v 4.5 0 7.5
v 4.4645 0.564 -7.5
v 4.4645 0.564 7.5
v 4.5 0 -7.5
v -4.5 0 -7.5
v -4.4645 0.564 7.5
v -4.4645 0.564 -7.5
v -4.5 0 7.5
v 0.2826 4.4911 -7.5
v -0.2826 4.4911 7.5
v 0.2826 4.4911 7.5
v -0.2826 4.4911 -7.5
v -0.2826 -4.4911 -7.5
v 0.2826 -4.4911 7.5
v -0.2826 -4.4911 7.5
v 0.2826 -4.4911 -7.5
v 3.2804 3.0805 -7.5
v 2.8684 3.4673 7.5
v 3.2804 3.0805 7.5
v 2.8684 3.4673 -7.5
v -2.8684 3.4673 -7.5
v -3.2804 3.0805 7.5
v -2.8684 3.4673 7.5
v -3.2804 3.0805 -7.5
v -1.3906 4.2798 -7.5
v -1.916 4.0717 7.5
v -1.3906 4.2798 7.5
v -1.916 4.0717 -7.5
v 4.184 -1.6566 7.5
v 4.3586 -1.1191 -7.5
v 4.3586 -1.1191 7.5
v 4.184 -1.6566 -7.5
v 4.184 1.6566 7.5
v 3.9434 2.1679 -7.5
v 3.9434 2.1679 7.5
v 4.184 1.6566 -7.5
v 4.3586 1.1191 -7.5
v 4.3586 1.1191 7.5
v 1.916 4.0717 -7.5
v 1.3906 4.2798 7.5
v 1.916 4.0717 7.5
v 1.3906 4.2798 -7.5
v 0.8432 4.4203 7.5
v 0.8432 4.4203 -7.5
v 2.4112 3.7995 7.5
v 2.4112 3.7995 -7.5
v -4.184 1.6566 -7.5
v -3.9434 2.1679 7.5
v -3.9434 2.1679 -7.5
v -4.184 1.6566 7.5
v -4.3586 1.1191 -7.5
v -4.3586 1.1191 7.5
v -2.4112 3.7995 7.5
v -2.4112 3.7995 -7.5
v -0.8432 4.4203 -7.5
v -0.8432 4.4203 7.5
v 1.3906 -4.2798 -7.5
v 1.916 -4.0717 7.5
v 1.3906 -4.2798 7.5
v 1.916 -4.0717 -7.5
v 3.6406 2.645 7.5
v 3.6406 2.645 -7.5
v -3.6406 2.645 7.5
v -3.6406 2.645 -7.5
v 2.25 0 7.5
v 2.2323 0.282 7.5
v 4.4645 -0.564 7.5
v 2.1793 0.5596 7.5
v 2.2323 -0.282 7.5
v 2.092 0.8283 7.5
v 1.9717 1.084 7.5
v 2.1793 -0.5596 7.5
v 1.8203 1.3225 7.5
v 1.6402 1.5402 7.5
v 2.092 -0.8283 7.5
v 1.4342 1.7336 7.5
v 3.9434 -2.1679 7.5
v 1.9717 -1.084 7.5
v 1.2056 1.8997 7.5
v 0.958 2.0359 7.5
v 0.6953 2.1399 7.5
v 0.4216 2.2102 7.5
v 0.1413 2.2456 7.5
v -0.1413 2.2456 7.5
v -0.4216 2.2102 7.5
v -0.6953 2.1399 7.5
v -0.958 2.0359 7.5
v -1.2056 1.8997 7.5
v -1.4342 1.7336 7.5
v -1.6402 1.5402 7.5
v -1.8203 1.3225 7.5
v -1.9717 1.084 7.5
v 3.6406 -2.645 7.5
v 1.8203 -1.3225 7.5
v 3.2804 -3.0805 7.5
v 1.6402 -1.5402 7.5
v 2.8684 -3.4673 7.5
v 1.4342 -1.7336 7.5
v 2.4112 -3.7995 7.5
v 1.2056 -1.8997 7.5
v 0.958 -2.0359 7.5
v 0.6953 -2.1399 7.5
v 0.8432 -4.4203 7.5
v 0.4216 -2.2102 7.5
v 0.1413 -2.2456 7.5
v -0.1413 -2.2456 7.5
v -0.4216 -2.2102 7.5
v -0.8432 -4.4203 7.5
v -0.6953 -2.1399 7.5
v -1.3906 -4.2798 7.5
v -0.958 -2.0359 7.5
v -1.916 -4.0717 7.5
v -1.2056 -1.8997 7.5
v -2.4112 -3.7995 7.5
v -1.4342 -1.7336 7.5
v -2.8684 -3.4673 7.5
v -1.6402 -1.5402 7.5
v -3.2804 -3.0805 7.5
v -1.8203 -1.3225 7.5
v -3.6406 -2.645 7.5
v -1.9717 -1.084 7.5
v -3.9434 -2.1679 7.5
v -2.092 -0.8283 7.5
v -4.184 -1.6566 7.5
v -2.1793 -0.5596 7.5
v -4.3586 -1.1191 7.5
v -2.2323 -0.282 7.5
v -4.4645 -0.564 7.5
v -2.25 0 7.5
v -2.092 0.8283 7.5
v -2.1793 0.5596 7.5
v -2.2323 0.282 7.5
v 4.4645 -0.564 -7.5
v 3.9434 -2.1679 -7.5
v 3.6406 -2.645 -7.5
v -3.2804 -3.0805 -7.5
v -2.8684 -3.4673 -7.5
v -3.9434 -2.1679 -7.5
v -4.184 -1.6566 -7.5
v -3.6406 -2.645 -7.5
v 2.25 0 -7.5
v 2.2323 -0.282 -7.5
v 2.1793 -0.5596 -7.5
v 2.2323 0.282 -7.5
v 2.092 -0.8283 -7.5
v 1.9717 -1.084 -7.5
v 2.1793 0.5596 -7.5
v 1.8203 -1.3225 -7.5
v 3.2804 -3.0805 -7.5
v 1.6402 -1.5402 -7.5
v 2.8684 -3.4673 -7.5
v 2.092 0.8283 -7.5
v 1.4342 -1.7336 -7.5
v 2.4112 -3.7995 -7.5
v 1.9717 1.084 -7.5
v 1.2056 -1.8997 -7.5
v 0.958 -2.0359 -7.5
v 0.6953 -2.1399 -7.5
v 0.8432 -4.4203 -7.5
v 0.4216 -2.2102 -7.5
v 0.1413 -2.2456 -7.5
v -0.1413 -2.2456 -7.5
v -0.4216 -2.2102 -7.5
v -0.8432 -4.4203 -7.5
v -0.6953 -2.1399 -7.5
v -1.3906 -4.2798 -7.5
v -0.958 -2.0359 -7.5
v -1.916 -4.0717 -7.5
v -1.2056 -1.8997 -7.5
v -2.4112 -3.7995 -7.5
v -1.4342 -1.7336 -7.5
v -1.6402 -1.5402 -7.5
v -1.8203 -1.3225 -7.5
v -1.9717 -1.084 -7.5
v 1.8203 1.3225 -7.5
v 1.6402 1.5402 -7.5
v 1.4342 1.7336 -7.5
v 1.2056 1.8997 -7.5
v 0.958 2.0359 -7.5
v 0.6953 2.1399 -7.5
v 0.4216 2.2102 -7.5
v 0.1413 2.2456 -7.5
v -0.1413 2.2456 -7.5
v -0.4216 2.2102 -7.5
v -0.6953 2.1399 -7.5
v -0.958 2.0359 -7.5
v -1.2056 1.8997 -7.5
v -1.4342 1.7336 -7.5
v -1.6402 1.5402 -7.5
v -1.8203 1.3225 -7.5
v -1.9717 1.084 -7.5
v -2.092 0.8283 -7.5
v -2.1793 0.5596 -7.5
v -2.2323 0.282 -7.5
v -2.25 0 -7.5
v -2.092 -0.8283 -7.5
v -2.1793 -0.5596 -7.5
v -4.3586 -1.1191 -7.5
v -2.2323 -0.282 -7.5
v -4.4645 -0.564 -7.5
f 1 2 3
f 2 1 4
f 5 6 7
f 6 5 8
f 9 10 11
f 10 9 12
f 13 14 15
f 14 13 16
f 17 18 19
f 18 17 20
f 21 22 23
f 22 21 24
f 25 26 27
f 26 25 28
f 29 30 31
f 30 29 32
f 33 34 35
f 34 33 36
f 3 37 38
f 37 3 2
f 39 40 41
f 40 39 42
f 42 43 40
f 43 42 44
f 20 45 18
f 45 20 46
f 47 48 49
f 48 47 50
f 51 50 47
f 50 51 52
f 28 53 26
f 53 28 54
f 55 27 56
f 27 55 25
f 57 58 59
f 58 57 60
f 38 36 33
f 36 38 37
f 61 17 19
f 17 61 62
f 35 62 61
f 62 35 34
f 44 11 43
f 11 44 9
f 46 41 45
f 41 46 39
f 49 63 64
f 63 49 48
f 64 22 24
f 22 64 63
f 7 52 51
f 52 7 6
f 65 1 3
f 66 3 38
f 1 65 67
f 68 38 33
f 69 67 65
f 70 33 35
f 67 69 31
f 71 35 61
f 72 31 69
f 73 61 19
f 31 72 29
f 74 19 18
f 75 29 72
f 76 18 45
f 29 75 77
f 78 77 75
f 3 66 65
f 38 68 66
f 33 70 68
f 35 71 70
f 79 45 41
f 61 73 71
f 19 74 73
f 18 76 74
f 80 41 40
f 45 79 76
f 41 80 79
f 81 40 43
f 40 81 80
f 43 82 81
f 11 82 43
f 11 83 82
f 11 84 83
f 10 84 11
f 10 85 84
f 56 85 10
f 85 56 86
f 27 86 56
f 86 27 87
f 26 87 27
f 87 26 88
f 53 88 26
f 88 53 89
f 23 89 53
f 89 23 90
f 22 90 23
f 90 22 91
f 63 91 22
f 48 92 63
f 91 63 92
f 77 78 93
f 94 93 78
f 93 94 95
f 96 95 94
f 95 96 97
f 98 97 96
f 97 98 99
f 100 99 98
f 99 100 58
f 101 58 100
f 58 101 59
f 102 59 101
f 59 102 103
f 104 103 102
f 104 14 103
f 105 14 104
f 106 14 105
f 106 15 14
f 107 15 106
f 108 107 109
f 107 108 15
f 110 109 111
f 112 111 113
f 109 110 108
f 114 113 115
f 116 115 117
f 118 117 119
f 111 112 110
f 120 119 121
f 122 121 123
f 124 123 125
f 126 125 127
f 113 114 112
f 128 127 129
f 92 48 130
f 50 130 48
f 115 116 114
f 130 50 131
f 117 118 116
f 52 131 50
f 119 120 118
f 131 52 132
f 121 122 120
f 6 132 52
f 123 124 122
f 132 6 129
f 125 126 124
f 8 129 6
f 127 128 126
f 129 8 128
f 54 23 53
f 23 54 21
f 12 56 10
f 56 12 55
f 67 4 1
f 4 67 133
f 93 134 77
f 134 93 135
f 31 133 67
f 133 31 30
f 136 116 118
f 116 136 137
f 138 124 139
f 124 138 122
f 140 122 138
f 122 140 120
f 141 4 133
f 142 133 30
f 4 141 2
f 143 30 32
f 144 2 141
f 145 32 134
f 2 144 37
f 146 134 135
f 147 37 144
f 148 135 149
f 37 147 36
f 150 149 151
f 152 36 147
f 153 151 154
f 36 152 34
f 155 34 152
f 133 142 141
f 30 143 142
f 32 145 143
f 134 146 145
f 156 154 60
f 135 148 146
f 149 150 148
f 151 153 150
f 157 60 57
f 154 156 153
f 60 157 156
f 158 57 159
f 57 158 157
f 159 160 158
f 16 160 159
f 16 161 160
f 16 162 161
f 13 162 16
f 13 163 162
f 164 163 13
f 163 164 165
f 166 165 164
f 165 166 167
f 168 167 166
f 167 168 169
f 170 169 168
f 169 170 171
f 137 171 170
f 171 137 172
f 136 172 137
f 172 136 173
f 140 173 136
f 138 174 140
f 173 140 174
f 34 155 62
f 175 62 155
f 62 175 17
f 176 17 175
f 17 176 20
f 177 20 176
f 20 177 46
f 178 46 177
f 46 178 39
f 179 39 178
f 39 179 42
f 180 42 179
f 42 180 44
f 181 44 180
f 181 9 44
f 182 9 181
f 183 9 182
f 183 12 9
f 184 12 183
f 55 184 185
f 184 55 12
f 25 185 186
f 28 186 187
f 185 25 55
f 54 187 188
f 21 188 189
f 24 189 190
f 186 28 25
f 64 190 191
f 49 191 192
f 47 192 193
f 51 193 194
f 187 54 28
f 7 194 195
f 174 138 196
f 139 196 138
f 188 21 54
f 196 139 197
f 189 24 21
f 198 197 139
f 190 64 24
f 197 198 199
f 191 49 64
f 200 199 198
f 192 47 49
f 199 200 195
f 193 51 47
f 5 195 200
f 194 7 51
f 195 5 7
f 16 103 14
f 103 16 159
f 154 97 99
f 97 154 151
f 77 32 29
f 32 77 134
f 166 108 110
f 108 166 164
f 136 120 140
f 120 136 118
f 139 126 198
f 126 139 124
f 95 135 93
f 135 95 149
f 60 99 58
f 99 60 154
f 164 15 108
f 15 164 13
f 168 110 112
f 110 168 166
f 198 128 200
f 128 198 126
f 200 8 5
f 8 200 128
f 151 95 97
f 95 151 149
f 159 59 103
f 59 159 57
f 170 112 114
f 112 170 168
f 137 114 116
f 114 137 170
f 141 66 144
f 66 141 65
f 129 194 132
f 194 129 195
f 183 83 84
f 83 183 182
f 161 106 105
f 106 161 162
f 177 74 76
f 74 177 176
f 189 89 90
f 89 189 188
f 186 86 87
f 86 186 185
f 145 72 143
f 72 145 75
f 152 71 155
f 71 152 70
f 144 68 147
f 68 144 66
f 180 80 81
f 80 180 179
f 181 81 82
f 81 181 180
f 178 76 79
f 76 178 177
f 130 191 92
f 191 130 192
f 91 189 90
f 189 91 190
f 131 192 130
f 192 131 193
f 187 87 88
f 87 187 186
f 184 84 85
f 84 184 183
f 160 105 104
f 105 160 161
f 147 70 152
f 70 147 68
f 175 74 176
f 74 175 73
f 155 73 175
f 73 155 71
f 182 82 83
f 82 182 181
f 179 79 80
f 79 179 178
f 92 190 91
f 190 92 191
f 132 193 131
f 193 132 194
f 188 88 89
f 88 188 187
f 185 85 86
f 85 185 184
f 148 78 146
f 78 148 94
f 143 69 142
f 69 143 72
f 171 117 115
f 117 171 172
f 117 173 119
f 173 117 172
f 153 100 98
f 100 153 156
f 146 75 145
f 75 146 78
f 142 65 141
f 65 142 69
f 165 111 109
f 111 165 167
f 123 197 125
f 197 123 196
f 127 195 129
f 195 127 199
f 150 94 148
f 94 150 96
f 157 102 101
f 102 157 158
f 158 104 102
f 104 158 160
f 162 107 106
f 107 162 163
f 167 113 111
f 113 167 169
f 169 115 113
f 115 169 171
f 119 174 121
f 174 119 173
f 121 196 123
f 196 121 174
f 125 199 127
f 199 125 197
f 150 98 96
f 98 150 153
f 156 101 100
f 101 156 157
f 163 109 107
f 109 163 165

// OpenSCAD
$fn = 50;


difference() {
	union() {
		translate(v = [0, 0, -7.5000000000]) {
			cylinder(h = 15, r = 4.5000000000);
		}
	}
	union() {
		translate(v = [0, 0, -100.0000000000]) {
			cylinder(h = 200, r = 2.2500000000);
		}
	}
}
